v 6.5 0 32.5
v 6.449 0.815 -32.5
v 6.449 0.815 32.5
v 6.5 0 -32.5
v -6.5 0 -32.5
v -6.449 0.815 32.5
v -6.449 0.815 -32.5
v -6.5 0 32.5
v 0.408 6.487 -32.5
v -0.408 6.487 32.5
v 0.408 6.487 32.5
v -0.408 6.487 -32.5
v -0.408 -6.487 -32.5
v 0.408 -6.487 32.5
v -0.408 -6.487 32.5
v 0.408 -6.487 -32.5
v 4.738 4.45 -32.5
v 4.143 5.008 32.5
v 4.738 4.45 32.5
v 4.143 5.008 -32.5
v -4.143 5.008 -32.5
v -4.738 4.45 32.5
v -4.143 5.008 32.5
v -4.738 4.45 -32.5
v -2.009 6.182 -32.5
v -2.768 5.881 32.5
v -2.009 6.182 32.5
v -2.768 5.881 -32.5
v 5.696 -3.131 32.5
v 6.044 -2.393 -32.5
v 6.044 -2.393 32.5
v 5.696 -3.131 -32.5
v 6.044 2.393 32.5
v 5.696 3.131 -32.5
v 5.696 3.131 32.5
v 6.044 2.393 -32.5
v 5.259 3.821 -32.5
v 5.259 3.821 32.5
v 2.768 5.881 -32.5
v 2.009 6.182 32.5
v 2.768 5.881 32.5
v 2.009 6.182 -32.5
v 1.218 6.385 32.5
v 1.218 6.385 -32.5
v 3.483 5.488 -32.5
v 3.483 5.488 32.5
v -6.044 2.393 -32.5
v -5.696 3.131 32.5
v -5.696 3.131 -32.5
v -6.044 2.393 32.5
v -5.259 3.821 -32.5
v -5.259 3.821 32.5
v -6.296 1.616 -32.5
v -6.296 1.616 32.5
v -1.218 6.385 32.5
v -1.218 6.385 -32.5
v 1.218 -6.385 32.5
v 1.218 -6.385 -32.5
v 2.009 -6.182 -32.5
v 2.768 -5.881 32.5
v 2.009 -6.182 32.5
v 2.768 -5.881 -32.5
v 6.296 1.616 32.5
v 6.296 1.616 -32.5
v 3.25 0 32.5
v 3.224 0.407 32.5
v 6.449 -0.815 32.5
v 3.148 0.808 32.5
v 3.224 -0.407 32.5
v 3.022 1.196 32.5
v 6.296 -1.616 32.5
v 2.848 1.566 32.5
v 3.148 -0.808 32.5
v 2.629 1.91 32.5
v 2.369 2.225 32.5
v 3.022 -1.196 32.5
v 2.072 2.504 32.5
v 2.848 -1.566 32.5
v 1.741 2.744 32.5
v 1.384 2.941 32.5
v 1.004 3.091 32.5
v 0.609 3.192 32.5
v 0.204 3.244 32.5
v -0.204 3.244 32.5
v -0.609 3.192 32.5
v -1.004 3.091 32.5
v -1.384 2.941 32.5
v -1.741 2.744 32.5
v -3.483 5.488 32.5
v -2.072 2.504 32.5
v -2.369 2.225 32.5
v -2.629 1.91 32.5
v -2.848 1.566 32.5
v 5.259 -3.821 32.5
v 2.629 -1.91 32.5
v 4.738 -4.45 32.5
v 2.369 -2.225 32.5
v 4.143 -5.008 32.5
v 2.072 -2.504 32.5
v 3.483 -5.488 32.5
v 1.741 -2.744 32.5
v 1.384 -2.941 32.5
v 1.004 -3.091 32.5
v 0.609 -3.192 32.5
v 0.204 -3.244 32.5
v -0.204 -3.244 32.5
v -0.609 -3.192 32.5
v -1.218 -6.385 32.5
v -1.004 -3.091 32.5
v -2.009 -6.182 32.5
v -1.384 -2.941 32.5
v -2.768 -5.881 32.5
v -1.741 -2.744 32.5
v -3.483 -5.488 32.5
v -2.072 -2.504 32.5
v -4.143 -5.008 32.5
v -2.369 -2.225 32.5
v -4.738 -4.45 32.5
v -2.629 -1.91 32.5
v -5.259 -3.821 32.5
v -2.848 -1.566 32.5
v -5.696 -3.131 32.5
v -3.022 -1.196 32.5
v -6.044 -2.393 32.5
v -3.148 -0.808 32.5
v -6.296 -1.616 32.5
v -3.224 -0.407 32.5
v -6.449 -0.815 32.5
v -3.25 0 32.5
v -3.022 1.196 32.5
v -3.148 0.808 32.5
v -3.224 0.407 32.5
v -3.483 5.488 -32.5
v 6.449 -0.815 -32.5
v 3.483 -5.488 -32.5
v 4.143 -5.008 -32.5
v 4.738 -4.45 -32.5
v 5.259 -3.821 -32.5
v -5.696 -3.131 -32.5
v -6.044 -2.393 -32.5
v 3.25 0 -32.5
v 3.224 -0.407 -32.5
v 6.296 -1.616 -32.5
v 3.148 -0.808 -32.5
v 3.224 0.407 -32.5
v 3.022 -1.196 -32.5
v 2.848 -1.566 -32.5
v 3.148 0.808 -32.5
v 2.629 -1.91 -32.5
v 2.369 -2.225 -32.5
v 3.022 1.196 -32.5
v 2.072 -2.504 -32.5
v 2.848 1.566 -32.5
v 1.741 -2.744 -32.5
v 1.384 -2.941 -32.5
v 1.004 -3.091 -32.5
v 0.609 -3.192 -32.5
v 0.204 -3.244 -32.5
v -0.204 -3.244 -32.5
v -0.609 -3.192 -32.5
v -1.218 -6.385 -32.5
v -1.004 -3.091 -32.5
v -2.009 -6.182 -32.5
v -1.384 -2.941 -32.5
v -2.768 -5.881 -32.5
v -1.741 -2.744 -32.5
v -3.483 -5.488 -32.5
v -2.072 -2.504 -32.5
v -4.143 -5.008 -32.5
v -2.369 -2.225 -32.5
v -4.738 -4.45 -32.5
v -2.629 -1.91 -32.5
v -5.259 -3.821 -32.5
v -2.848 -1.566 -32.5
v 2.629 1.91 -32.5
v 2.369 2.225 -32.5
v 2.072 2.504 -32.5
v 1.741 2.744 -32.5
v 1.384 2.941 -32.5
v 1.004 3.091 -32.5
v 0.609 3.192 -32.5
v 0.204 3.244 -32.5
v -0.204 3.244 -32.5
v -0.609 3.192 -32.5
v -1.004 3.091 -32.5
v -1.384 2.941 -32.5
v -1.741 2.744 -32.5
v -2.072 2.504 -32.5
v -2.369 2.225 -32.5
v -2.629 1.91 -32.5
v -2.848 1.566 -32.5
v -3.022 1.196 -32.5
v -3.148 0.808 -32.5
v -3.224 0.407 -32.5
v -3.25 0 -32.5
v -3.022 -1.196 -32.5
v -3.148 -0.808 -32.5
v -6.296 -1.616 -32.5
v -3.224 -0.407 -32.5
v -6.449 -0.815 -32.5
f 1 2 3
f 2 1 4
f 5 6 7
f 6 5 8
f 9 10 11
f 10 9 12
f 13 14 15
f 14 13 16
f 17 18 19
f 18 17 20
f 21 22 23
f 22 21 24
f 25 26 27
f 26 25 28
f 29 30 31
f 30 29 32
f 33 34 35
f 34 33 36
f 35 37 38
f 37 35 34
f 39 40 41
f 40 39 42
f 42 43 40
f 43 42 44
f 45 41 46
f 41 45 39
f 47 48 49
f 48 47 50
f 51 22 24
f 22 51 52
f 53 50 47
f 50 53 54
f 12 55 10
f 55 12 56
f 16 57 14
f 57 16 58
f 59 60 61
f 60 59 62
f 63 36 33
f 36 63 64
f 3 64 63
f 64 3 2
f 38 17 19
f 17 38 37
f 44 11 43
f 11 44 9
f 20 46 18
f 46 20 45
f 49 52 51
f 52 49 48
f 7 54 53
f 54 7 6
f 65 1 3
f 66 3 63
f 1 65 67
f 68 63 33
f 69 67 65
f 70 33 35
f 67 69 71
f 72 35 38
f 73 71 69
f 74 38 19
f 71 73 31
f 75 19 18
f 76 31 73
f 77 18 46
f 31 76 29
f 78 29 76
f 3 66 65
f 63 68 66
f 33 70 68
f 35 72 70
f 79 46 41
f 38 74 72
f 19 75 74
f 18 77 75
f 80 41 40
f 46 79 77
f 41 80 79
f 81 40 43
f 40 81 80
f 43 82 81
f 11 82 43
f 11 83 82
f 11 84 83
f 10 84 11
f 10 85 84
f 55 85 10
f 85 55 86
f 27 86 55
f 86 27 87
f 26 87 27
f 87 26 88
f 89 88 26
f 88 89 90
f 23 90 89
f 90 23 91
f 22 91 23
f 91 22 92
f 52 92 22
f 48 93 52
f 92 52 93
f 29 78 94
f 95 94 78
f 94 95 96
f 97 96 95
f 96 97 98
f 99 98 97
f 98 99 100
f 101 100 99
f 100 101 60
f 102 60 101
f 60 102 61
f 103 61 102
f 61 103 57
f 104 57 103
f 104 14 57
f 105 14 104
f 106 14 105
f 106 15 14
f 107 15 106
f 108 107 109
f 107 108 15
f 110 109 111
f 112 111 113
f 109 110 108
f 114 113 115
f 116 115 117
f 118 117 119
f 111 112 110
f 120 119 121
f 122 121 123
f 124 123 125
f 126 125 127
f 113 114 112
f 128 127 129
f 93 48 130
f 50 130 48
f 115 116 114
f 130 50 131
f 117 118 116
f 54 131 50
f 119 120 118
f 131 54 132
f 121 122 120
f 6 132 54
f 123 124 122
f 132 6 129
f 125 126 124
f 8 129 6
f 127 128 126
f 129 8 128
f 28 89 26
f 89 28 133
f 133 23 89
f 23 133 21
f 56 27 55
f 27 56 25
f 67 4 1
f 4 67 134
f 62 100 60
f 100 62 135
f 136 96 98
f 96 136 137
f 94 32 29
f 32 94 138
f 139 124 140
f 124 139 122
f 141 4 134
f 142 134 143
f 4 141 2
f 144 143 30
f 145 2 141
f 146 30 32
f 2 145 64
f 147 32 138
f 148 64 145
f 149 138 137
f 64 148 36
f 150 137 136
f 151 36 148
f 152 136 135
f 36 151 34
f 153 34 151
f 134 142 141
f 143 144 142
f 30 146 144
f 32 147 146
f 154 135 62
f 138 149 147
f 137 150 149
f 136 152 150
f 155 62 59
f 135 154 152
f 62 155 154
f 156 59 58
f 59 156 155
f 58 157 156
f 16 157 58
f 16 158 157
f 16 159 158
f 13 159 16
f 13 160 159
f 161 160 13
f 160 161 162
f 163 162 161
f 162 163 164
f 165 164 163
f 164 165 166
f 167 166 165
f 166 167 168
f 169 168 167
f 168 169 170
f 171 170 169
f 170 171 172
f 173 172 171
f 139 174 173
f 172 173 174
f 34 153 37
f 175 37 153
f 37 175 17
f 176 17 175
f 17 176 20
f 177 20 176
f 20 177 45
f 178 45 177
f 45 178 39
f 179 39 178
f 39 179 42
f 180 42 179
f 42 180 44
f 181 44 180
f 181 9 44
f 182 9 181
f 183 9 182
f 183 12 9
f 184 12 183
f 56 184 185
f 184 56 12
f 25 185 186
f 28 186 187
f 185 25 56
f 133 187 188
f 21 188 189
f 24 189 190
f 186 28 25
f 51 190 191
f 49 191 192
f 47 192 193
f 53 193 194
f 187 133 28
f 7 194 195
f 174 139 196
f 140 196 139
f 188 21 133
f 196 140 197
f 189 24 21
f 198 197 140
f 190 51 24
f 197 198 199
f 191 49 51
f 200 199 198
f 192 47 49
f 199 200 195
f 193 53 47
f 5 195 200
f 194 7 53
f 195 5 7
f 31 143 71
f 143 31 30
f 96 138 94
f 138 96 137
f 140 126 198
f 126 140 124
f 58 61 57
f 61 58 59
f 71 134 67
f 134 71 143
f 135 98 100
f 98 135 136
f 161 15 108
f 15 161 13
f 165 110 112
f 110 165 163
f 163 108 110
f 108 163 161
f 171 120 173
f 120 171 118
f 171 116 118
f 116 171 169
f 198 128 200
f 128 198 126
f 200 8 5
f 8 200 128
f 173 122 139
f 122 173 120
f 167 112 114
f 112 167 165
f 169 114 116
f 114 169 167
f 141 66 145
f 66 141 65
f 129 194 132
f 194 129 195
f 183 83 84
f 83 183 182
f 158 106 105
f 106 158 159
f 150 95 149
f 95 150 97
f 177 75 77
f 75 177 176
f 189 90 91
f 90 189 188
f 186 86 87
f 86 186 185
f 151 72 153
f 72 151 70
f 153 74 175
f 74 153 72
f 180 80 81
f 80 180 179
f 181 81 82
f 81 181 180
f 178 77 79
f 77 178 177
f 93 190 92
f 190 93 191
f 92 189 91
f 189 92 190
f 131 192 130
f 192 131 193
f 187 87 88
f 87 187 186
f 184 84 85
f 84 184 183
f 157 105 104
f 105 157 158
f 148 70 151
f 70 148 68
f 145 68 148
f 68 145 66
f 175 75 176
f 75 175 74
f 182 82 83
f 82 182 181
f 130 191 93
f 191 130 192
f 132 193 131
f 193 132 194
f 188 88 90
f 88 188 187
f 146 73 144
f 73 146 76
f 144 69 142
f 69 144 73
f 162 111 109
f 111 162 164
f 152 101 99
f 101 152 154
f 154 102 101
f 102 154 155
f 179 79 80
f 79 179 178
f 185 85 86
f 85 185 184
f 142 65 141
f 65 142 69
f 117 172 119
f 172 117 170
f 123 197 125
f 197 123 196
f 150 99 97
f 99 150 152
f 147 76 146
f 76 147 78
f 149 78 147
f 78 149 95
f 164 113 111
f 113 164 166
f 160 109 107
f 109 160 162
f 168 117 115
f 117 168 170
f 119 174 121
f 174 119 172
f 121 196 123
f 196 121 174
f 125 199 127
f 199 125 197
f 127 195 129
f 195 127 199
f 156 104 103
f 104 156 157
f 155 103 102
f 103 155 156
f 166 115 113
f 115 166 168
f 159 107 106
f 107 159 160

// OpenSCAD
$fn = 50;


difference() {
	union() {
		translate(v = [0, 0, -32.5000000000]) {
			cylinder(h = 65, r = 6.5000000000);
		}
	}
	union() {
		translate(v = [0, 0, -100.0000000000]) {
			cylinder(h = 200, r = 3.2500000000);
		}
	}
}
